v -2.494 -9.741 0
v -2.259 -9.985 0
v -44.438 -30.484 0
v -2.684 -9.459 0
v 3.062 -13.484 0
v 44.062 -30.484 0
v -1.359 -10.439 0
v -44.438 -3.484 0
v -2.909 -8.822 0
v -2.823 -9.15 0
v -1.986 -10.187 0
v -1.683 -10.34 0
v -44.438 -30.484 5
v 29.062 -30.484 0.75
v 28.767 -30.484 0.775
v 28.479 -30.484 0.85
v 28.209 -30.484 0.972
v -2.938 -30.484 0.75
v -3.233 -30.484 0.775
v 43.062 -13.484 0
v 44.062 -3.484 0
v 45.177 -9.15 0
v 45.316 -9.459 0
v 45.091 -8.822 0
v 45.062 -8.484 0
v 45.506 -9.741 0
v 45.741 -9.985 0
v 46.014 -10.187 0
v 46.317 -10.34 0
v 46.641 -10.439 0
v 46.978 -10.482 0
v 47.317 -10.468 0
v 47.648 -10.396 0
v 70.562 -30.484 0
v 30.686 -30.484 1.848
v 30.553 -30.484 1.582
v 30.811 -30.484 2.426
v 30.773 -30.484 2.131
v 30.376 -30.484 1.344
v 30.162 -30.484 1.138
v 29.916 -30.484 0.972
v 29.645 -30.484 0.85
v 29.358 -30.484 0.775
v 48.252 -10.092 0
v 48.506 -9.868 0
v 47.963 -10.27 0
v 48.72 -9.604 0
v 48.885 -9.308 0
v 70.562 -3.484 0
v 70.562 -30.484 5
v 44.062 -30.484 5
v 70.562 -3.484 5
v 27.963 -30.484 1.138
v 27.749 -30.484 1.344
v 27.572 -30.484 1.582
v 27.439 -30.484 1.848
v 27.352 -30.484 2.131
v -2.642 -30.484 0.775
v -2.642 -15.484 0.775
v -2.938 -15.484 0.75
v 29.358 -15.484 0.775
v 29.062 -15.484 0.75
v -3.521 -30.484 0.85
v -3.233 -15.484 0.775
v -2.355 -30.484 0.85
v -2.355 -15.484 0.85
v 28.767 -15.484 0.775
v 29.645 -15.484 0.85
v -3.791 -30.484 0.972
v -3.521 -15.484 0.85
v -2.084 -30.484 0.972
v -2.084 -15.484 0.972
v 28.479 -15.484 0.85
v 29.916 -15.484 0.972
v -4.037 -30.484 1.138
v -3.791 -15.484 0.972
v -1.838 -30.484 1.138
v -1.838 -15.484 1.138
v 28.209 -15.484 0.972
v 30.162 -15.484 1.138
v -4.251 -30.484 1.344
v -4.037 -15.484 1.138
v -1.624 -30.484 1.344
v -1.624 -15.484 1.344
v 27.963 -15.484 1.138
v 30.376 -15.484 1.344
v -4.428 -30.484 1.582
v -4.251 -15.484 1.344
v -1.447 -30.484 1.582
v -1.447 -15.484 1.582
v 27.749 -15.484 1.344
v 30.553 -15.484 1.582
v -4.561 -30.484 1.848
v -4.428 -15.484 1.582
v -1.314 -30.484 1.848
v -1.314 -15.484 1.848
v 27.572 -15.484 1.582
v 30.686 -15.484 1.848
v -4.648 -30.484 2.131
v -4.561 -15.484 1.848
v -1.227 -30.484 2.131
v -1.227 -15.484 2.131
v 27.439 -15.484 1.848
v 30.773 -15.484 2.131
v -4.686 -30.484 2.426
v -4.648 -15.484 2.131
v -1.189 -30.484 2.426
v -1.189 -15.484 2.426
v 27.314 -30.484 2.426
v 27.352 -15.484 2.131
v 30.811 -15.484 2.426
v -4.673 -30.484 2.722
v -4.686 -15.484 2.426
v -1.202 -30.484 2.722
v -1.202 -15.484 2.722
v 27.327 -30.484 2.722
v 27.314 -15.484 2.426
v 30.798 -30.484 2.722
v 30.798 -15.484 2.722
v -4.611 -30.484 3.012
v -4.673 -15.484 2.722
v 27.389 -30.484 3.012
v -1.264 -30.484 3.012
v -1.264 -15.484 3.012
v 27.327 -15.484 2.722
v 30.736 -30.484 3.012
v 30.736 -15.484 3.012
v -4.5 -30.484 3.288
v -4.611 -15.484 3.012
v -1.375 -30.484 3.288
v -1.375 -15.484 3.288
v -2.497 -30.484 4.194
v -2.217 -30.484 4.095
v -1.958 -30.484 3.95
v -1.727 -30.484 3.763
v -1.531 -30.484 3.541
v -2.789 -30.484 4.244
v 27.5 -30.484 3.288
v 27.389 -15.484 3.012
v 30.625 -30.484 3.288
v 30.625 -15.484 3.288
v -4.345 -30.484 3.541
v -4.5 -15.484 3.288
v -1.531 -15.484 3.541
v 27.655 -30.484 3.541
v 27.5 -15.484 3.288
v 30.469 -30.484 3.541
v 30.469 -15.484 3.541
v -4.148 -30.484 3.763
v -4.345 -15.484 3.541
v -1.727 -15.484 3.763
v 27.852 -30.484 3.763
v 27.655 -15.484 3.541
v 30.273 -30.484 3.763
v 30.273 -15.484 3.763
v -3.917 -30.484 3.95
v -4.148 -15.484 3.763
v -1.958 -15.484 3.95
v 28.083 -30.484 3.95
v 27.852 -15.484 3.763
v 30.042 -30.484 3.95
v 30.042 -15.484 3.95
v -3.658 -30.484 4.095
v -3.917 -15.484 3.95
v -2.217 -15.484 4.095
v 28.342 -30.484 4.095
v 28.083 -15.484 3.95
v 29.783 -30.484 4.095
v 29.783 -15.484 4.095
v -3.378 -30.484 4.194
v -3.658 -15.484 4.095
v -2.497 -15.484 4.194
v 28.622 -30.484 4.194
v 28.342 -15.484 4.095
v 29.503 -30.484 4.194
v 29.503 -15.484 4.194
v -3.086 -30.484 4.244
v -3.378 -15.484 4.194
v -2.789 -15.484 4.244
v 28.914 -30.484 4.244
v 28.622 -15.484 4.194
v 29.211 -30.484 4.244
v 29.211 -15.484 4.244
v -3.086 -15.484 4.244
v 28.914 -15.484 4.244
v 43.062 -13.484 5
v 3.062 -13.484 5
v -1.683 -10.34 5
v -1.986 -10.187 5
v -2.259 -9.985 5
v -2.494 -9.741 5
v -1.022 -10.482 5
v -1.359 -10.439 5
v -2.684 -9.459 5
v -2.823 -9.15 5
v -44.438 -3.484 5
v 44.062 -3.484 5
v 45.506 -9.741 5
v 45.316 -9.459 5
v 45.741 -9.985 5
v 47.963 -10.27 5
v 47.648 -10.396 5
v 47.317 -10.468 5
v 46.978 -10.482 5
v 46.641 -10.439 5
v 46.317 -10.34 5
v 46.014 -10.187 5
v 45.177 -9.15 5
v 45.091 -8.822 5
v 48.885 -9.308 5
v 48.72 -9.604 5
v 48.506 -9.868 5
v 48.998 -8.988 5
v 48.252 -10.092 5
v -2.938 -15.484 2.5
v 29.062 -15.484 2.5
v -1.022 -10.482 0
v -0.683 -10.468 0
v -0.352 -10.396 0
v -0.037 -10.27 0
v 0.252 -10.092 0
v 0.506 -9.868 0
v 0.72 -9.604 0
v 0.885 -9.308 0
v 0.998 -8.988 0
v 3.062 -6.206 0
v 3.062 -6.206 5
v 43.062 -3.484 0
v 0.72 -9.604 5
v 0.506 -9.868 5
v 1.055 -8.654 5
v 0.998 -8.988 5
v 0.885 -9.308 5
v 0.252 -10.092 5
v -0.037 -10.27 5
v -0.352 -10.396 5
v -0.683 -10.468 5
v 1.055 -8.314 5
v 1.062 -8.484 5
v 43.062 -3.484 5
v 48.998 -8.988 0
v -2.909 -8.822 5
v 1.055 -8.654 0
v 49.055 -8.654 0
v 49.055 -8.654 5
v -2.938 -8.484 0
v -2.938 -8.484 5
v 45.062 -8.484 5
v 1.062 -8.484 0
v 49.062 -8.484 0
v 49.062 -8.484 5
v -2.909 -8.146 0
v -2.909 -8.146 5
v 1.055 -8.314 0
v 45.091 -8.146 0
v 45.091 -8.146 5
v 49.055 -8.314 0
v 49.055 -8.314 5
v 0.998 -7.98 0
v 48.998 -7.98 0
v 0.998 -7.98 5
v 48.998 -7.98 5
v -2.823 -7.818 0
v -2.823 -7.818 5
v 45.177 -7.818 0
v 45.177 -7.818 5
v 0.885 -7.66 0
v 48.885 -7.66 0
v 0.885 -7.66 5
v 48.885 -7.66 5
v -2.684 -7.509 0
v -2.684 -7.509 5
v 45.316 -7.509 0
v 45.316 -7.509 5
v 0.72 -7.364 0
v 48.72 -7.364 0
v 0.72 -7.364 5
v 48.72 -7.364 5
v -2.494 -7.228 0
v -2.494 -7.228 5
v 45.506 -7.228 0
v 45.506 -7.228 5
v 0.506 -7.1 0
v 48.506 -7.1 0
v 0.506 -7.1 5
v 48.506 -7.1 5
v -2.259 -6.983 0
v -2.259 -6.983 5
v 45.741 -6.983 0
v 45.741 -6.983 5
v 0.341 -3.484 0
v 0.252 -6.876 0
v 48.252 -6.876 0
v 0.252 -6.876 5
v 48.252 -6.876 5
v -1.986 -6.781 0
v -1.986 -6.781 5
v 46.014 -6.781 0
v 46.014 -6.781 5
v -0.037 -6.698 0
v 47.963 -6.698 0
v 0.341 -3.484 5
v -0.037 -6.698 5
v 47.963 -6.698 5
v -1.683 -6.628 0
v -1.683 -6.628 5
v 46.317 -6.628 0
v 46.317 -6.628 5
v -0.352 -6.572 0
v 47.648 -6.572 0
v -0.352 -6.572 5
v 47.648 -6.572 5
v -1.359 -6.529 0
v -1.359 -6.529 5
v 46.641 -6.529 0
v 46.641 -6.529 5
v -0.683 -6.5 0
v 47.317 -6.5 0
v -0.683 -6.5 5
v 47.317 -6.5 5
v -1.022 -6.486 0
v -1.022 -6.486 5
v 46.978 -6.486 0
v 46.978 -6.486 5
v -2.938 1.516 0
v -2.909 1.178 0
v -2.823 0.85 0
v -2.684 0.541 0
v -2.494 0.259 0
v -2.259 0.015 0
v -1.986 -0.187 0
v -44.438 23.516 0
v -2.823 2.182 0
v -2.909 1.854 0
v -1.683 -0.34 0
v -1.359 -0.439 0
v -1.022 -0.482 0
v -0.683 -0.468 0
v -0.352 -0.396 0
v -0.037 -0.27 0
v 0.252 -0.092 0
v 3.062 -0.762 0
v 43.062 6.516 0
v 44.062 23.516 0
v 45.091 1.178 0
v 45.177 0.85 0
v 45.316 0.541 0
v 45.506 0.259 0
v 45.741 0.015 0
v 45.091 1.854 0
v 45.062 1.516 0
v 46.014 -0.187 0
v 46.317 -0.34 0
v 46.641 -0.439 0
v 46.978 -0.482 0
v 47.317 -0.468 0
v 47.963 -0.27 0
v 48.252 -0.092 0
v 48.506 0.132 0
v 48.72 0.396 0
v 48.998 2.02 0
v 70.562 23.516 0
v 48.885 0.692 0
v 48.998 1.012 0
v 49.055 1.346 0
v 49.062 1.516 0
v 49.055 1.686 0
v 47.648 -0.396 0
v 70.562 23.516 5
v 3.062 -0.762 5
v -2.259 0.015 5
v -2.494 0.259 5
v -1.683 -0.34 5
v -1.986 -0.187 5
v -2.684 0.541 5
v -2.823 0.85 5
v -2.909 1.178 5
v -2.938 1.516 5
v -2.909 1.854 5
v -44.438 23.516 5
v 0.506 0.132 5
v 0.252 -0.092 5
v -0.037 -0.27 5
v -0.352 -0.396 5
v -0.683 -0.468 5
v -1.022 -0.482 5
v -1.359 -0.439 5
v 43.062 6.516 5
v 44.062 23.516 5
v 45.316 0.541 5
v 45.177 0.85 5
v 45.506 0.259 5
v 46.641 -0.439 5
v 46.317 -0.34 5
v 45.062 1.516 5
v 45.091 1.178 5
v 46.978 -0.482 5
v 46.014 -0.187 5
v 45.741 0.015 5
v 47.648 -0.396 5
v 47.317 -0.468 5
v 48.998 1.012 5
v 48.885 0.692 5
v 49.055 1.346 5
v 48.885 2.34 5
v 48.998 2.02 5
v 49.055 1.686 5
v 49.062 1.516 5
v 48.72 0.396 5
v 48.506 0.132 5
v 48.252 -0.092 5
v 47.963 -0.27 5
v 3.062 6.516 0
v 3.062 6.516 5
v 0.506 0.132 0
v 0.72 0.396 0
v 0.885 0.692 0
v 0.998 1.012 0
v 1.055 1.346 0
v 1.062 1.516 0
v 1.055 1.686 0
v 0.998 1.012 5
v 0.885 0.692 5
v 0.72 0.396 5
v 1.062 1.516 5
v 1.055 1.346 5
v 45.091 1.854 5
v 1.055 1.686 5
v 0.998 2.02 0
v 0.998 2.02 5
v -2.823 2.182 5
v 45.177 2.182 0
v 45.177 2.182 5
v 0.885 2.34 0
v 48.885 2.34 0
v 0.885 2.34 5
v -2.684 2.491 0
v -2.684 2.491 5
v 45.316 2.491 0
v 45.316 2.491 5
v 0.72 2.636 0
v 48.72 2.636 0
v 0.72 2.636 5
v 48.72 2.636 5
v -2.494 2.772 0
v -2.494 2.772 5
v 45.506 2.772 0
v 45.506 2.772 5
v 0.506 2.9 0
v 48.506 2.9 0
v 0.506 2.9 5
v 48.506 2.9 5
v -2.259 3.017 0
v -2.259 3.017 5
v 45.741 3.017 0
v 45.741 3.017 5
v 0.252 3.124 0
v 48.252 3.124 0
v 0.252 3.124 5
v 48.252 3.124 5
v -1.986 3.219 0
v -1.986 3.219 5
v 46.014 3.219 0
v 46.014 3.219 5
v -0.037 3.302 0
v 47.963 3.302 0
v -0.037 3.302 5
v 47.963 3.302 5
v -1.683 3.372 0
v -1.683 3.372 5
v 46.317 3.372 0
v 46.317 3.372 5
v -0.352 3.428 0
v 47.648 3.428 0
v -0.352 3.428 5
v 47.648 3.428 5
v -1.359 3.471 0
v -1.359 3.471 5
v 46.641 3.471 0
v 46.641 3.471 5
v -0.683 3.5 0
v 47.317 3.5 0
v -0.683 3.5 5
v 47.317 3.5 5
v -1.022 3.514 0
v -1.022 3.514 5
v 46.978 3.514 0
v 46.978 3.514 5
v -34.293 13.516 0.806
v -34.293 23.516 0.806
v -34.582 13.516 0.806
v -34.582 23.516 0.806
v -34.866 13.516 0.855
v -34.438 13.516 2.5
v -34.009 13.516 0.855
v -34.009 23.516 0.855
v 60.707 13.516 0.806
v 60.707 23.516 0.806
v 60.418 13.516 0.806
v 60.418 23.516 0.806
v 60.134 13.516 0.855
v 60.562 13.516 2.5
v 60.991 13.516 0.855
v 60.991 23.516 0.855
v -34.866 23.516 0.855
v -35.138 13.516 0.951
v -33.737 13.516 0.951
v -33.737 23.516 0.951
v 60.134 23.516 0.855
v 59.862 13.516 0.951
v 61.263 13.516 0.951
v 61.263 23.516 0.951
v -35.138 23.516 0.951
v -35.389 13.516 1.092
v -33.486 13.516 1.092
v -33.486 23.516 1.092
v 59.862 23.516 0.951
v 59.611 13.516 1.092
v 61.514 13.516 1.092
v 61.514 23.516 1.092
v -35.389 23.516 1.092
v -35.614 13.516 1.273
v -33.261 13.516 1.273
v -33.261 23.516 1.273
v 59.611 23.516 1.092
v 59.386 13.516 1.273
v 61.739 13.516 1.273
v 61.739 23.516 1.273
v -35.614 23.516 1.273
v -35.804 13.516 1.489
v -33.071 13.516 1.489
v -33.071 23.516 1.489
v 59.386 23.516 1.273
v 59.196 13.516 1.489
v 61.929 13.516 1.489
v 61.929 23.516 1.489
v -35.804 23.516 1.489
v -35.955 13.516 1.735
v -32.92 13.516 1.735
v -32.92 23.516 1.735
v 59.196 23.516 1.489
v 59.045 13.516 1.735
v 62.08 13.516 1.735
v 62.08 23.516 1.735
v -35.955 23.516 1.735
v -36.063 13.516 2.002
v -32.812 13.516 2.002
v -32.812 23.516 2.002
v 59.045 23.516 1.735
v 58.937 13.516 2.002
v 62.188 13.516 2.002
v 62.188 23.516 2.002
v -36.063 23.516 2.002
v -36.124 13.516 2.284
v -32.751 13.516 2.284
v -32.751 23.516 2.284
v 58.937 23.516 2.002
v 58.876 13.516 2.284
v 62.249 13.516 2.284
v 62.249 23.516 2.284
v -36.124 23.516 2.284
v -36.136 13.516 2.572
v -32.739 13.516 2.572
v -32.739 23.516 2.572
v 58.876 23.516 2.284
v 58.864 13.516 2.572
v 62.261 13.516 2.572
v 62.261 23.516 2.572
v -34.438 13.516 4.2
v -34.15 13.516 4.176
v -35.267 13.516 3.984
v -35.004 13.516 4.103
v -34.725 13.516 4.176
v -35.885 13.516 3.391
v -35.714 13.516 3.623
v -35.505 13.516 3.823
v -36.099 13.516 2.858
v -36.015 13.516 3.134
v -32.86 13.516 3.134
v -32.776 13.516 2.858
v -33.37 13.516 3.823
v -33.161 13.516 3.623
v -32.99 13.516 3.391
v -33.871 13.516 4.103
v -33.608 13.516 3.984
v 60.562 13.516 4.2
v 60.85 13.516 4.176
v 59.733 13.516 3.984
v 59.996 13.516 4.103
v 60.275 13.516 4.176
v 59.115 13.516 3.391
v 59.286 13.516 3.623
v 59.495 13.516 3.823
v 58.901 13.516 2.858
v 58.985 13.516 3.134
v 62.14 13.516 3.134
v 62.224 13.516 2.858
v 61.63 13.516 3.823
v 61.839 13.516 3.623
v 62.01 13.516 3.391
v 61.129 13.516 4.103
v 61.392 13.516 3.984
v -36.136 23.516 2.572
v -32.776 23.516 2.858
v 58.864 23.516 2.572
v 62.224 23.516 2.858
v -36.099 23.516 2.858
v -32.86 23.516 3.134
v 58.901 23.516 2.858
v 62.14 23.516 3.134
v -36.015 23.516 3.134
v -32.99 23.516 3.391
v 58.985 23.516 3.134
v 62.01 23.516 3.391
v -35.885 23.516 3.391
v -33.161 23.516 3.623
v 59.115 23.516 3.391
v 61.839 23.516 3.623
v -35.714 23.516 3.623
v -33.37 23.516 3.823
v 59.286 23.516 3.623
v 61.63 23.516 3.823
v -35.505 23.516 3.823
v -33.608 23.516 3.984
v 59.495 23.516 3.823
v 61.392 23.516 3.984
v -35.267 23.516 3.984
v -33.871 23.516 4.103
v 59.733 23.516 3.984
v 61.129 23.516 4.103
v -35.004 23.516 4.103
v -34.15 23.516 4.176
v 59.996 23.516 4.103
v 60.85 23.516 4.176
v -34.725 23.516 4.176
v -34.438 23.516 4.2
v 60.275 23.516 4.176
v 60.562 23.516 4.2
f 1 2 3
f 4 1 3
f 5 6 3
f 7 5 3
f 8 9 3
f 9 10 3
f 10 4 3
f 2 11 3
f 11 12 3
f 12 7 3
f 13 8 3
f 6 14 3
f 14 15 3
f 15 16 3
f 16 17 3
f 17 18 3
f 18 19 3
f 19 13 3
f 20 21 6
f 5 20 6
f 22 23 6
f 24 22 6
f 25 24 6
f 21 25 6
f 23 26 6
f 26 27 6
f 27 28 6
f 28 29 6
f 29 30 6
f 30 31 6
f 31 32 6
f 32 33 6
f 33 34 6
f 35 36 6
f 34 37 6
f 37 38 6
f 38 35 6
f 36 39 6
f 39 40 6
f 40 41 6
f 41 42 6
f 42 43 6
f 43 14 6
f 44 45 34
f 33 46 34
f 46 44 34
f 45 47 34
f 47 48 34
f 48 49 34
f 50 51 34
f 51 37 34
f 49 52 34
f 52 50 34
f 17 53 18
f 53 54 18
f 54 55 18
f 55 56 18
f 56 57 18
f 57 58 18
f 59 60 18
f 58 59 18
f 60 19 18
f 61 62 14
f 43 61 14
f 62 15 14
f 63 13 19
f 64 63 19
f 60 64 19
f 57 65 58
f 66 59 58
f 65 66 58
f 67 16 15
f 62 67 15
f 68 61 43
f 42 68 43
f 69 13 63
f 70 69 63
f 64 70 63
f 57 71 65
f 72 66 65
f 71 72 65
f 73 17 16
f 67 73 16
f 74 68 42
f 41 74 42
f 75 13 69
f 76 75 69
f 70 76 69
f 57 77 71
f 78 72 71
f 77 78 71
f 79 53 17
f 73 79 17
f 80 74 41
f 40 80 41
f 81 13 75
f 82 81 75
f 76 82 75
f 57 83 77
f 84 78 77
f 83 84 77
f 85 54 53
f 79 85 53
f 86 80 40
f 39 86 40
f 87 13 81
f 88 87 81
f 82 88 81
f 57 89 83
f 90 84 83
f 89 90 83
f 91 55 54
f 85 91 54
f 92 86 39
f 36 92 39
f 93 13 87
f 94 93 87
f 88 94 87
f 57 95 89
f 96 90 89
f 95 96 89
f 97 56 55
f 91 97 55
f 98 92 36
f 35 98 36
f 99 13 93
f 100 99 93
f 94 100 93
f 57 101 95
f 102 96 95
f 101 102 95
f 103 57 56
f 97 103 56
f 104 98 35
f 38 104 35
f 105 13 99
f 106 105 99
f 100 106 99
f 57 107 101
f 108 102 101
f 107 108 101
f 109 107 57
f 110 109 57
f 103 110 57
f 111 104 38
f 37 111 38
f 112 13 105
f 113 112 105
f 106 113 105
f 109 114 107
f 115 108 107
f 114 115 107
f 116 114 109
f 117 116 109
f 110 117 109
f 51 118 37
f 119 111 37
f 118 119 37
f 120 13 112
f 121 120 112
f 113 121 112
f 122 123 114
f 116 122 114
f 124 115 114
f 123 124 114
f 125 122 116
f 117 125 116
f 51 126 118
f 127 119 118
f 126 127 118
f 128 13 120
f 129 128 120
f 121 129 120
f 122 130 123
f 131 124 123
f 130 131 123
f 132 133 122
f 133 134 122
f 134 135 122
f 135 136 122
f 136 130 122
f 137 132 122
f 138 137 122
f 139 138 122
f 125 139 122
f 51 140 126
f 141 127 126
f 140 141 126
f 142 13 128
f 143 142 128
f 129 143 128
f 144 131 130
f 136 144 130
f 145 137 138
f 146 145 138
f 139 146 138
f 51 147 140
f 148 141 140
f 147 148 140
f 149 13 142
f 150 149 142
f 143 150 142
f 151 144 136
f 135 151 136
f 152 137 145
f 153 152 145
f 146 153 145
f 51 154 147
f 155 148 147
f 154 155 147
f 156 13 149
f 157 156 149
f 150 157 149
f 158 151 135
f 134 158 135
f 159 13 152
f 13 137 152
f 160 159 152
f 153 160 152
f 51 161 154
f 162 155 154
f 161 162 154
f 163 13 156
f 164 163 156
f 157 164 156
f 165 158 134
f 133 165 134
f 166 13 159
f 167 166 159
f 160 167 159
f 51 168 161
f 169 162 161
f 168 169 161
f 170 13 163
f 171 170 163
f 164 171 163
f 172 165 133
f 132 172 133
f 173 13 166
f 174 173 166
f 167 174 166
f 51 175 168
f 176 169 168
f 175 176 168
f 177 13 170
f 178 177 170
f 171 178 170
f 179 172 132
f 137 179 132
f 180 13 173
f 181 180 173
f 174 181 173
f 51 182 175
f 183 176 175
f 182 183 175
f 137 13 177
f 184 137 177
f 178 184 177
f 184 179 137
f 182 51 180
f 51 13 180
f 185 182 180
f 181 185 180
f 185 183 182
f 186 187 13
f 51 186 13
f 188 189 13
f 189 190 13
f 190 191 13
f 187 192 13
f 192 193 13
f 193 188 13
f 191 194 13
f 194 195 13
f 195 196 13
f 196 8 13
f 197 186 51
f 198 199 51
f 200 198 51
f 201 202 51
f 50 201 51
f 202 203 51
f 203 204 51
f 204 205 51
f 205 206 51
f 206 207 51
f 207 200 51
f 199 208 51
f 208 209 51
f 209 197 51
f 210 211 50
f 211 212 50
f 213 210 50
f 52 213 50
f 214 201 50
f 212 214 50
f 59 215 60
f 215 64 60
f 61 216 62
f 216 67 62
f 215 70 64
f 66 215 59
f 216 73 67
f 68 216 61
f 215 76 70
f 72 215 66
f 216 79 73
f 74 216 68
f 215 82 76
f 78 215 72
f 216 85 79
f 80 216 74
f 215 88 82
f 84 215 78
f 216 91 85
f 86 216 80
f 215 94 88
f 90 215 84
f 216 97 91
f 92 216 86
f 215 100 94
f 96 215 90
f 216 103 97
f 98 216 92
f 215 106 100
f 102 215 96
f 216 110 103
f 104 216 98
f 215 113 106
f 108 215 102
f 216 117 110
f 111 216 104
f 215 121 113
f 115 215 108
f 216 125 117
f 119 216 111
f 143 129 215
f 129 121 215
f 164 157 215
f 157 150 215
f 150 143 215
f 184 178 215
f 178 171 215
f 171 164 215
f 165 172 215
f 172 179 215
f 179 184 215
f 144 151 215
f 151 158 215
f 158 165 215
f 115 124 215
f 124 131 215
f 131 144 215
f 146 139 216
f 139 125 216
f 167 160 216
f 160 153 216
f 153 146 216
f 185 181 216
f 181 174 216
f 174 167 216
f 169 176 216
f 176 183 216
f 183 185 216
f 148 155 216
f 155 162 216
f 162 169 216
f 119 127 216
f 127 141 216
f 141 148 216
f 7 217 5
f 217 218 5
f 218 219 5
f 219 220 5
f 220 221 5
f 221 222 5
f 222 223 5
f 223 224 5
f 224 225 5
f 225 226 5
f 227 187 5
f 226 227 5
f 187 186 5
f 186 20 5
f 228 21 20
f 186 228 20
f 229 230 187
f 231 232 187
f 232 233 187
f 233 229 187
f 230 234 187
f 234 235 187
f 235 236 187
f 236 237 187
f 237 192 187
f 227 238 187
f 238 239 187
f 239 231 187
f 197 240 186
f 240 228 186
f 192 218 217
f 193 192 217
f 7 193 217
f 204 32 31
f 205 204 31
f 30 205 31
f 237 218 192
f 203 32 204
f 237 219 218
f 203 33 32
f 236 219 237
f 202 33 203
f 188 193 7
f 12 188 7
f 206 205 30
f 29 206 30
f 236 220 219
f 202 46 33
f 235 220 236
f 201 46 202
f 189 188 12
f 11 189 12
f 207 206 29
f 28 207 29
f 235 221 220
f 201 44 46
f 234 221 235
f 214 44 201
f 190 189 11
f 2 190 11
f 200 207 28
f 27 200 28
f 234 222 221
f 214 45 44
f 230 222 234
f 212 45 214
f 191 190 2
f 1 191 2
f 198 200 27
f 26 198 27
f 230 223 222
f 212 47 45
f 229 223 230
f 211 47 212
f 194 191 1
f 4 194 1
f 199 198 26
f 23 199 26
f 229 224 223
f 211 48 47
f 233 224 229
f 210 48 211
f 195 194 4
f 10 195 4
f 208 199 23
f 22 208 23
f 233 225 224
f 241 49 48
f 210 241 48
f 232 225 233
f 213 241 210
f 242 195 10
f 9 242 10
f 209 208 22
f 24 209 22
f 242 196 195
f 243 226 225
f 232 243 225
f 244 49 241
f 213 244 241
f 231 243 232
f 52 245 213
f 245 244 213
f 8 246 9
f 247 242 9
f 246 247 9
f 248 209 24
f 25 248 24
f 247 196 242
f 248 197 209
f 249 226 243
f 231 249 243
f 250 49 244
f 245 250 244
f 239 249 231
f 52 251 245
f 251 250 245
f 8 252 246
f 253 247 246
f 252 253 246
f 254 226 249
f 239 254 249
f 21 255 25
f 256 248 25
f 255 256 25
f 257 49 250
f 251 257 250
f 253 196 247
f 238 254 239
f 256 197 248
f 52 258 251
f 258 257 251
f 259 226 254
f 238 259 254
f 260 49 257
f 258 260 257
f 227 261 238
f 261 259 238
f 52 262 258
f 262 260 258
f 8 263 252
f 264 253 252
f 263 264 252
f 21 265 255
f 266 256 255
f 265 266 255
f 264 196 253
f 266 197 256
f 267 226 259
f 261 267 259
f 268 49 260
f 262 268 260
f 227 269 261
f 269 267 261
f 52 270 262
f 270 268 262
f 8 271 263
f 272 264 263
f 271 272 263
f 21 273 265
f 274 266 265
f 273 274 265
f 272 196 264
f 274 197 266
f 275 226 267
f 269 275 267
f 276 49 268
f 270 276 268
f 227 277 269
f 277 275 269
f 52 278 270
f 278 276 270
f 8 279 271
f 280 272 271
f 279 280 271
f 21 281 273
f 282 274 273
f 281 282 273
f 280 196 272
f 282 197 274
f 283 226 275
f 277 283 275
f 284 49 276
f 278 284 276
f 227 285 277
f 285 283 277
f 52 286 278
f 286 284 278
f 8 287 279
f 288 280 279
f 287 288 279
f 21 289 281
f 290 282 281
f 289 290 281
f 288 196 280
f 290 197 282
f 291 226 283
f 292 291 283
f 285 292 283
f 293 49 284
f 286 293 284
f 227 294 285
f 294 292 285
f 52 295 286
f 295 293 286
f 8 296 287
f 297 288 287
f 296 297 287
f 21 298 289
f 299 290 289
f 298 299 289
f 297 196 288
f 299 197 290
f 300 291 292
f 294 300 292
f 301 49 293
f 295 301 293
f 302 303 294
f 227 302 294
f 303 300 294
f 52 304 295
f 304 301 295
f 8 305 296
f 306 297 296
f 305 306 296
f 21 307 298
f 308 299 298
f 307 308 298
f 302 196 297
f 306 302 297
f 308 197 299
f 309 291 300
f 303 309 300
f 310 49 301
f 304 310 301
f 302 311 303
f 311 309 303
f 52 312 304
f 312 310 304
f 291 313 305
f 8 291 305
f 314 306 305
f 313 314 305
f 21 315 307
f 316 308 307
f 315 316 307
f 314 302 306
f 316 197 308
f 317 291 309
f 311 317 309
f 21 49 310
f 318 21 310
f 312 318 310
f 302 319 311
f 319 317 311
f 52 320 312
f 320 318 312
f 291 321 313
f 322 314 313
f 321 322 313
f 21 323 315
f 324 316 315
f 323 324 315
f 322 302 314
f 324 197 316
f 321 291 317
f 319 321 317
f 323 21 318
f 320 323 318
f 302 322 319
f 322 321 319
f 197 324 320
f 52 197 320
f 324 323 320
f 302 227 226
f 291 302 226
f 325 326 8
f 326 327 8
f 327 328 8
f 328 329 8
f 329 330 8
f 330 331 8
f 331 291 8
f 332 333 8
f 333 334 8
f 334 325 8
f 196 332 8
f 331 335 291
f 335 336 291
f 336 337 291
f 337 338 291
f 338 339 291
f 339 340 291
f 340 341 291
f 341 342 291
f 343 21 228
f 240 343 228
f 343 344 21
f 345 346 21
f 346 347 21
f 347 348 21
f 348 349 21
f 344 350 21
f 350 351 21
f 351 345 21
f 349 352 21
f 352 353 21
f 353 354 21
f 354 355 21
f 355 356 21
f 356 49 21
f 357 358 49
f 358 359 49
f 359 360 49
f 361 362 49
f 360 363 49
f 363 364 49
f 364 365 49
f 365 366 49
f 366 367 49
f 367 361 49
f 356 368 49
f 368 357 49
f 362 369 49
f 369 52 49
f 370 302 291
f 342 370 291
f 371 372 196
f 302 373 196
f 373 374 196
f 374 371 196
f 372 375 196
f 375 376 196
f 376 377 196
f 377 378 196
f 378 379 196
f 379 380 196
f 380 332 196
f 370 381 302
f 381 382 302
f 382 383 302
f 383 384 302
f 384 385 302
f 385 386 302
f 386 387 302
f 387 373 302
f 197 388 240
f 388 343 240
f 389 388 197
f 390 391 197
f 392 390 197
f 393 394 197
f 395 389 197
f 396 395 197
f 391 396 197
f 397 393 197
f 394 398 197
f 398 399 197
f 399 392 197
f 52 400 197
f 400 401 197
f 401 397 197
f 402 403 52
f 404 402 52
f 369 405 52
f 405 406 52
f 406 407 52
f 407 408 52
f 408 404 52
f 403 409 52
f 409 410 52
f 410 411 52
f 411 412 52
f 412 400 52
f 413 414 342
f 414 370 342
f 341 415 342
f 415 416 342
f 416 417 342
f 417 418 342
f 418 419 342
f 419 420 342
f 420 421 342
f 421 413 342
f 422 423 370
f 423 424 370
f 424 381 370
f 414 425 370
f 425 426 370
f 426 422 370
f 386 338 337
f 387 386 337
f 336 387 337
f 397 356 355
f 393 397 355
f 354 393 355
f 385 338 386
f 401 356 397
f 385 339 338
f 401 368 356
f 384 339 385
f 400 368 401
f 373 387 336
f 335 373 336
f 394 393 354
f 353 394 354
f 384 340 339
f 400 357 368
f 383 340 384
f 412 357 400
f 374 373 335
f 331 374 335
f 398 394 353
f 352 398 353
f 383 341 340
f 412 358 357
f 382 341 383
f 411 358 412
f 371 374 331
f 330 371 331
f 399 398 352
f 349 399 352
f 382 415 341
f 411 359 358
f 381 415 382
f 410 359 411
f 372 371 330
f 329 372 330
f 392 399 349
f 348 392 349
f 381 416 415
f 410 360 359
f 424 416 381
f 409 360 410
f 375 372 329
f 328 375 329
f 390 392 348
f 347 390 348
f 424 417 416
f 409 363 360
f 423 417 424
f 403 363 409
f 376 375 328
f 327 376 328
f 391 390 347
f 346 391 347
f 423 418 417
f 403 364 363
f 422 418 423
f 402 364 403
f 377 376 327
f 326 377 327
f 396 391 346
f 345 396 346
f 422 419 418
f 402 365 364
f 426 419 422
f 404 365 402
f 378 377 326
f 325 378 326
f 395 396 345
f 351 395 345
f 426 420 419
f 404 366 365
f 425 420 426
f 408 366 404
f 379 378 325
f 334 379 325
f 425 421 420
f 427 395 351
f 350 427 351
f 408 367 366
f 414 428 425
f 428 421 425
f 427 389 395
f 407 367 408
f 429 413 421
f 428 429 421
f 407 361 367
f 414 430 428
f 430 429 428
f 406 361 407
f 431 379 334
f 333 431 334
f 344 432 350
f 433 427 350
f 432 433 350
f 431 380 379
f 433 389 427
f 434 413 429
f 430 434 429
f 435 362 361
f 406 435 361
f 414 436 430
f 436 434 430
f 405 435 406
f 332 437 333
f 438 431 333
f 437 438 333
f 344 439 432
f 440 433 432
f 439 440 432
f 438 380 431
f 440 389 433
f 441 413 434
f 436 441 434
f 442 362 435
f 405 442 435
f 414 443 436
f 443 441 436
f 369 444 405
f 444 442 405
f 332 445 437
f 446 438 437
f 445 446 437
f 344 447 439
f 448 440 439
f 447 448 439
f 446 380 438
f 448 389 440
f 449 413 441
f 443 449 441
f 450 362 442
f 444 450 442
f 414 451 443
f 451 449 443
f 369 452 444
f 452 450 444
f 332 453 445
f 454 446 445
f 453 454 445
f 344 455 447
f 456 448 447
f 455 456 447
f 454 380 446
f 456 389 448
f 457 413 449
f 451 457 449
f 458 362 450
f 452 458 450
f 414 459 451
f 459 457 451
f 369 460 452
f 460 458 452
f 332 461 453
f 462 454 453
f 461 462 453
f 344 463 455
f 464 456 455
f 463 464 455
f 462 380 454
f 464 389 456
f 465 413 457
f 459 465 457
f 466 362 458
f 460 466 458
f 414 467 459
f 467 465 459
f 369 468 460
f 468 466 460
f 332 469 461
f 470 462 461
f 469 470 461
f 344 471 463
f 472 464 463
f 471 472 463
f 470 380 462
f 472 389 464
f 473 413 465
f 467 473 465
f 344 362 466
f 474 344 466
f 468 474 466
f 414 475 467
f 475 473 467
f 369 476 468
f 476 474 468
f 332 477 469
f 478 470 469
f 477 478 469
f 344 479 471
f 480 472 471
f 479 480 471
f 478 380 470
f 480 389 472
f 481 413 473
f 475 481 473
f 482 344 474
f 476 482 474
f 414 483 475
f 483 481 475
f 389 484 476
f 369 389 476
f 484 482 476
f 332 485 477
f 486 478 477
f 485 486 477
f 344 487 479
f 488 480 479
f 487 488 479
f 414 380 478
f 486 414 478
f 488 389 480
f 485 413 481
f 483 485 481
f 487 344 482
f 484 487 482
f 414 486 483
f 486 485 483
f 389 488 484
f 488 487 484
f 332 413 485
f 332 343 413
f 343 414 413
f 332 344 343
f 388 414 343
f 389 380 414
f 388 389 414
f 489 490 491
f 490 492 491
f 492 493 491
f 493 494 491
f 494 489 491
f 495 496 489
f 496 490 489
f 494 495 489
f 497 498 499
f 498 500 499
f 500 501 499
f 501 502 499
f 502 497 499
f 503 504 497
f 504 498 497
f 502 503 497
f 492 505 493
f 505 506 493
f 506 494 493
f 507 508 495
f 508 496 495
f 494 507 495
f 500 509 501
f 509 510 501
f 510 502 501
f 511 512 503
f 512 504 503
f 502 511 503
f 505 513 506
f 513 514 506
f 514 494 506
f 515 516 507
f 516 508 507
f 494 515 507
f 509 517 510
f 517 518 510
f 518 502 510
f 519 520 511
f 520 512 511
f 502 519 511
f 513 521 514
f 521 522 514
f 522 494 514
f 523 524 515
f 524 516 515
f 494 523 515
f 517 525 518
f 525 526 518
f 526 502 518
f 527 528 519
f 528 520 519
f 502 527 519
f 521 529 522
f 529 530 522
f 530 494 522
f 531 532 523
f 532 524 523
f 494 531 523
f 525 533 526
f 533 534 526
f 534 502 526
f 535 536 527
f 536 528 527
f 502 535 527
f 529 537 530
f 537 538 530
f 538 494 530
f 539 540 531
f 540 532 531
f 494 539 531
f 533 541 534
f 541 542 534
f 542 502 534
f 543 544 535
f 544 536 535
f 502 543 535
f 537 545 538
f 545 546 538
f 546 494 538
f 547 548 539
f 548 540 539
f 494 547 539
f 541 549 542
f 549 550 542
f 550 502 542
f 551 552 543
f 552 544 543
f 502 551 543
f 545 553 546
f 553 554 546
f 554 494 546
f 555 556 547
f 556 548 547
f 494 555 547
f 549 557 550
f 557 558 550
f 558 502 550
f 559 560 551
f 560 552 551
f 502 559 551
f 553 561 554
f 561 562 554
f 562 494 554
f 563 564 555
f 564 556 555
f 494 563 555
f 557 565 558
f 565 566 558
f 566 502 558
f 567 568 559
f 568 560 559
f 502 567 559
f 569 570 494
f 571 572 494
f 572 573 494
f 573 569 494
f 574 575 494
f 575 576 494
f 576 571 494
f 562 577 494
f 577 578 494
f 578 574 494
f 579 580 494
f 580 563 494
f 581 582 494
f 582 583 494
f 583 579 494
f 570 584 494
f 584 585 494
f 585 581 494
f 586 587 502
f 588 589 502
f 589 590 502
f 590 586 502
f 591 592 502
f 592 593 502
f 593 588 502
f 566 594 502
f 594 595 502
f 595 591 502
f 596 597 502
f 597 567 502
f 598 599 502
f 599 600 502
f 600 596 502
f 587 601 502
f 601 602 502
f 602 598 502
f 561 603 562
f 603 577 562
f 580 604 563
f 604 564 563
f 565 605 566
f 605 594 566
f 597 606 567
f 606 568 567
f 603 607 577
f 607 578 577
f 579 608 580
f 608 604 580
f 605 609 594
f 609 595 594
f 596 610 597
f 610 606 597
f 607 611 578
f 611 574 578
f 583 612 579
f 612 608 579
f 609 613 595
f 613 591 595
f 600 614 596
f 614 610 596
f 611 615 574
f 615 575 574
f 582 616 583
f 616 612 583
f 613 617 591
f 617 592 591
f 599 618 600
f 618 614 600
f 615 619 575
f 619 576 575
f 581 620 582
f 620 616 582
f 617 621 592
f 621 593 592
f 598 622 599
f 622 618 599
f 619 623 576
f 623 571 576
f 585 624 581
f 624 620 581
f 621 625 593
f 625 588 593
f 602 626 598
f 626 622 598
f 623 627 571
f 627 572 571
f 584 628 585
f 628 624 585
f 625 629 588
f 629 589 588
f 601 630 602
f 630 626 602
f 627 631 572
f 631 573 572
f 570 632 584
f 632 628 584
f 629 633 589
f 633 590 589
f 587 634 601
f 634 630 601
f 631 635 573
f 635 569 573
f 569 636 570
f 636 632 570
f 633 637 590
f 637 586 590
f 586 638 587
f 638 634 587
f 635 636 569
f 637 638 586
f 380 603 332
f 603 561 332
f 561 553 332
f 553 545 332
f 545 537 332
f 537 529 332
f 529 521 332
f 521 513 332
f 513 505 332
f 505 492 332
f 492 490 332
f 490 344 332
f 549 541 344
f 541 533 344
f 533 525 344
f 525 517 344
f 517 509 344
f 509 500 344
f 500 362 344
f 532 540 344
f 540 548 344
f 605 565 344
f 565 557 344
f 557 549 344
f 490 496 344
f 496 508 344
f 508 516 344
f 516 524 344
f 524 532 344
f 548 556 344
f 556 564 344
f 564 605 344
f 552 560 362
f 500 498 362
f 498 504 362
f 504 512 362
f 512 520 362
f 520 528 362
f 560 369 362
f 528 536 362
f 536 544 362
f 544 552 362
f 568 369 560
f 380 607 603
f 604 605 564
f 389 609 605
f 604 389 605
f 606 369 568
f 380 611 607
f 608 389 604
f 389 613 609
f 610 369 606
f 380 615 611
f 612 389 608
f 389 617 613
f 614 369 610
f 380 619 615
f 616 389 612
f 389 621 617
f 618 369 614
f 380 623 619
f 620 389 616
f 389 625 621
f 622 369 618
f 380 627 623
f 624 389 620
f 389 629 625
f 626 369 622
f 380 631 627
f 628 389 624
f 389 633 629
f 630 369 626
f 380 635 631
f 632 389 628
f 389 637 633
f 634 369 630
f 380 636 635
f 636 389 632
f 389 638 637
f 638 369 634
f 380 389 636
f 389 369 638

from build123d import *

# Parameters (mm, degrees)
SKETCH_1_W          = 115
SKETCH_1_H          = 54
SKETCH_1_R          = 2
SKETCH_1_W_2        = 40
SKETCH_1_H_2        = 20
EXTRUDE_3_DEPTH     = 5
SKETCH_3_R          = 1.75
CUT_EXTRUDE_2_DEPTH = 15
CUT_EXTRUDE_3_DEPTH = 10
SKETCH_5_R          = 1.7
CUT_EXTRUDE_4_DEPTH = 10


with BuildPart() as part:
    # 草圖1 → 填料-伸長3 (new body)
    with BuildSketch(Plane.XY):
        with Locations((13.062480584, -3.484099434)):
            Rectangle(SKETCH_1_W, SKETCH_1_H)
        with Locations((-0.937519416, -8.484099434)):
            Circle(SKETCH_1_R, mode=Mode.SUBTRACT)
        with Locations((47.062480584, -8.484099434)):
            Circle(SKETCH_1_R, mode=Mode.SUBTRACT)
        with Locations((-0.937519416, 1.515900566)):
            Circle(SKETCH_1_R, mode=Mode.SUBTRACT)
        with Locations((47.062480584, 1.515900566)):
            Circle(SKETCH_1_R, mode=Mode.SUBTRACT)
        with Locations((23.062480584, -3.484099434)):
            Rectangle(SKETCH_1_W_2, SKETCH_1_H_2, mode=Mode.SUBTRACT)
    extrude(amount=EXTRUDE_3_DEPTH)

    # 草圖3 → 除料-伸長2 (cut)
    with BuildSketch(Plane.XZ.offset(30.484099434)):
        with Locations(Location((29.062480584, 2.5, 0), (0, 0, 270))):
            Circle(SKETCH_3_R)
        with Locations(Location((-2.937519416, 2.5, 0), (0, 0, 270))):
            Circle(SKETCH_3_R)
    extrude(amount=-CUT_EXTRUDE_2_DEPTH, mode=Mode.SUBTRACT)

    # 草圖4 → 除料-伸長3 (cut)
    with BuildSketch(Plane.XY.offset(5)):
        Polygon((0.340707034, -3.484099434), (3.062480584, -6.205872984), (3.062480584, -0.762325884), align=None)
    extrude(amount=-CUT_EXTRUDE_3_DEPTH, mode=Mode.SUBTRACT)

    # 草圖5 → 除料-伸長4 (cut)
    with BuildSketch(Plane(origin=(0, 23.515900566, 0), x_dir=(1, 0, 0), z_dir=(0, 1, 0))):
        with Locations(Location((60.562480584, -2.5, 0), (0, 0, 270))):
            Circle(SKETCH_5_R)
        with Locations(Location((-34.437519416, -2.5, 0), (0, 0, 270))):
            Circle(SKETCH_5_R)
    extrude(amount=-CUT_EXTRUDE_4_DEPTH, mode=Mode.SUBTRACT)


solid = part.part
